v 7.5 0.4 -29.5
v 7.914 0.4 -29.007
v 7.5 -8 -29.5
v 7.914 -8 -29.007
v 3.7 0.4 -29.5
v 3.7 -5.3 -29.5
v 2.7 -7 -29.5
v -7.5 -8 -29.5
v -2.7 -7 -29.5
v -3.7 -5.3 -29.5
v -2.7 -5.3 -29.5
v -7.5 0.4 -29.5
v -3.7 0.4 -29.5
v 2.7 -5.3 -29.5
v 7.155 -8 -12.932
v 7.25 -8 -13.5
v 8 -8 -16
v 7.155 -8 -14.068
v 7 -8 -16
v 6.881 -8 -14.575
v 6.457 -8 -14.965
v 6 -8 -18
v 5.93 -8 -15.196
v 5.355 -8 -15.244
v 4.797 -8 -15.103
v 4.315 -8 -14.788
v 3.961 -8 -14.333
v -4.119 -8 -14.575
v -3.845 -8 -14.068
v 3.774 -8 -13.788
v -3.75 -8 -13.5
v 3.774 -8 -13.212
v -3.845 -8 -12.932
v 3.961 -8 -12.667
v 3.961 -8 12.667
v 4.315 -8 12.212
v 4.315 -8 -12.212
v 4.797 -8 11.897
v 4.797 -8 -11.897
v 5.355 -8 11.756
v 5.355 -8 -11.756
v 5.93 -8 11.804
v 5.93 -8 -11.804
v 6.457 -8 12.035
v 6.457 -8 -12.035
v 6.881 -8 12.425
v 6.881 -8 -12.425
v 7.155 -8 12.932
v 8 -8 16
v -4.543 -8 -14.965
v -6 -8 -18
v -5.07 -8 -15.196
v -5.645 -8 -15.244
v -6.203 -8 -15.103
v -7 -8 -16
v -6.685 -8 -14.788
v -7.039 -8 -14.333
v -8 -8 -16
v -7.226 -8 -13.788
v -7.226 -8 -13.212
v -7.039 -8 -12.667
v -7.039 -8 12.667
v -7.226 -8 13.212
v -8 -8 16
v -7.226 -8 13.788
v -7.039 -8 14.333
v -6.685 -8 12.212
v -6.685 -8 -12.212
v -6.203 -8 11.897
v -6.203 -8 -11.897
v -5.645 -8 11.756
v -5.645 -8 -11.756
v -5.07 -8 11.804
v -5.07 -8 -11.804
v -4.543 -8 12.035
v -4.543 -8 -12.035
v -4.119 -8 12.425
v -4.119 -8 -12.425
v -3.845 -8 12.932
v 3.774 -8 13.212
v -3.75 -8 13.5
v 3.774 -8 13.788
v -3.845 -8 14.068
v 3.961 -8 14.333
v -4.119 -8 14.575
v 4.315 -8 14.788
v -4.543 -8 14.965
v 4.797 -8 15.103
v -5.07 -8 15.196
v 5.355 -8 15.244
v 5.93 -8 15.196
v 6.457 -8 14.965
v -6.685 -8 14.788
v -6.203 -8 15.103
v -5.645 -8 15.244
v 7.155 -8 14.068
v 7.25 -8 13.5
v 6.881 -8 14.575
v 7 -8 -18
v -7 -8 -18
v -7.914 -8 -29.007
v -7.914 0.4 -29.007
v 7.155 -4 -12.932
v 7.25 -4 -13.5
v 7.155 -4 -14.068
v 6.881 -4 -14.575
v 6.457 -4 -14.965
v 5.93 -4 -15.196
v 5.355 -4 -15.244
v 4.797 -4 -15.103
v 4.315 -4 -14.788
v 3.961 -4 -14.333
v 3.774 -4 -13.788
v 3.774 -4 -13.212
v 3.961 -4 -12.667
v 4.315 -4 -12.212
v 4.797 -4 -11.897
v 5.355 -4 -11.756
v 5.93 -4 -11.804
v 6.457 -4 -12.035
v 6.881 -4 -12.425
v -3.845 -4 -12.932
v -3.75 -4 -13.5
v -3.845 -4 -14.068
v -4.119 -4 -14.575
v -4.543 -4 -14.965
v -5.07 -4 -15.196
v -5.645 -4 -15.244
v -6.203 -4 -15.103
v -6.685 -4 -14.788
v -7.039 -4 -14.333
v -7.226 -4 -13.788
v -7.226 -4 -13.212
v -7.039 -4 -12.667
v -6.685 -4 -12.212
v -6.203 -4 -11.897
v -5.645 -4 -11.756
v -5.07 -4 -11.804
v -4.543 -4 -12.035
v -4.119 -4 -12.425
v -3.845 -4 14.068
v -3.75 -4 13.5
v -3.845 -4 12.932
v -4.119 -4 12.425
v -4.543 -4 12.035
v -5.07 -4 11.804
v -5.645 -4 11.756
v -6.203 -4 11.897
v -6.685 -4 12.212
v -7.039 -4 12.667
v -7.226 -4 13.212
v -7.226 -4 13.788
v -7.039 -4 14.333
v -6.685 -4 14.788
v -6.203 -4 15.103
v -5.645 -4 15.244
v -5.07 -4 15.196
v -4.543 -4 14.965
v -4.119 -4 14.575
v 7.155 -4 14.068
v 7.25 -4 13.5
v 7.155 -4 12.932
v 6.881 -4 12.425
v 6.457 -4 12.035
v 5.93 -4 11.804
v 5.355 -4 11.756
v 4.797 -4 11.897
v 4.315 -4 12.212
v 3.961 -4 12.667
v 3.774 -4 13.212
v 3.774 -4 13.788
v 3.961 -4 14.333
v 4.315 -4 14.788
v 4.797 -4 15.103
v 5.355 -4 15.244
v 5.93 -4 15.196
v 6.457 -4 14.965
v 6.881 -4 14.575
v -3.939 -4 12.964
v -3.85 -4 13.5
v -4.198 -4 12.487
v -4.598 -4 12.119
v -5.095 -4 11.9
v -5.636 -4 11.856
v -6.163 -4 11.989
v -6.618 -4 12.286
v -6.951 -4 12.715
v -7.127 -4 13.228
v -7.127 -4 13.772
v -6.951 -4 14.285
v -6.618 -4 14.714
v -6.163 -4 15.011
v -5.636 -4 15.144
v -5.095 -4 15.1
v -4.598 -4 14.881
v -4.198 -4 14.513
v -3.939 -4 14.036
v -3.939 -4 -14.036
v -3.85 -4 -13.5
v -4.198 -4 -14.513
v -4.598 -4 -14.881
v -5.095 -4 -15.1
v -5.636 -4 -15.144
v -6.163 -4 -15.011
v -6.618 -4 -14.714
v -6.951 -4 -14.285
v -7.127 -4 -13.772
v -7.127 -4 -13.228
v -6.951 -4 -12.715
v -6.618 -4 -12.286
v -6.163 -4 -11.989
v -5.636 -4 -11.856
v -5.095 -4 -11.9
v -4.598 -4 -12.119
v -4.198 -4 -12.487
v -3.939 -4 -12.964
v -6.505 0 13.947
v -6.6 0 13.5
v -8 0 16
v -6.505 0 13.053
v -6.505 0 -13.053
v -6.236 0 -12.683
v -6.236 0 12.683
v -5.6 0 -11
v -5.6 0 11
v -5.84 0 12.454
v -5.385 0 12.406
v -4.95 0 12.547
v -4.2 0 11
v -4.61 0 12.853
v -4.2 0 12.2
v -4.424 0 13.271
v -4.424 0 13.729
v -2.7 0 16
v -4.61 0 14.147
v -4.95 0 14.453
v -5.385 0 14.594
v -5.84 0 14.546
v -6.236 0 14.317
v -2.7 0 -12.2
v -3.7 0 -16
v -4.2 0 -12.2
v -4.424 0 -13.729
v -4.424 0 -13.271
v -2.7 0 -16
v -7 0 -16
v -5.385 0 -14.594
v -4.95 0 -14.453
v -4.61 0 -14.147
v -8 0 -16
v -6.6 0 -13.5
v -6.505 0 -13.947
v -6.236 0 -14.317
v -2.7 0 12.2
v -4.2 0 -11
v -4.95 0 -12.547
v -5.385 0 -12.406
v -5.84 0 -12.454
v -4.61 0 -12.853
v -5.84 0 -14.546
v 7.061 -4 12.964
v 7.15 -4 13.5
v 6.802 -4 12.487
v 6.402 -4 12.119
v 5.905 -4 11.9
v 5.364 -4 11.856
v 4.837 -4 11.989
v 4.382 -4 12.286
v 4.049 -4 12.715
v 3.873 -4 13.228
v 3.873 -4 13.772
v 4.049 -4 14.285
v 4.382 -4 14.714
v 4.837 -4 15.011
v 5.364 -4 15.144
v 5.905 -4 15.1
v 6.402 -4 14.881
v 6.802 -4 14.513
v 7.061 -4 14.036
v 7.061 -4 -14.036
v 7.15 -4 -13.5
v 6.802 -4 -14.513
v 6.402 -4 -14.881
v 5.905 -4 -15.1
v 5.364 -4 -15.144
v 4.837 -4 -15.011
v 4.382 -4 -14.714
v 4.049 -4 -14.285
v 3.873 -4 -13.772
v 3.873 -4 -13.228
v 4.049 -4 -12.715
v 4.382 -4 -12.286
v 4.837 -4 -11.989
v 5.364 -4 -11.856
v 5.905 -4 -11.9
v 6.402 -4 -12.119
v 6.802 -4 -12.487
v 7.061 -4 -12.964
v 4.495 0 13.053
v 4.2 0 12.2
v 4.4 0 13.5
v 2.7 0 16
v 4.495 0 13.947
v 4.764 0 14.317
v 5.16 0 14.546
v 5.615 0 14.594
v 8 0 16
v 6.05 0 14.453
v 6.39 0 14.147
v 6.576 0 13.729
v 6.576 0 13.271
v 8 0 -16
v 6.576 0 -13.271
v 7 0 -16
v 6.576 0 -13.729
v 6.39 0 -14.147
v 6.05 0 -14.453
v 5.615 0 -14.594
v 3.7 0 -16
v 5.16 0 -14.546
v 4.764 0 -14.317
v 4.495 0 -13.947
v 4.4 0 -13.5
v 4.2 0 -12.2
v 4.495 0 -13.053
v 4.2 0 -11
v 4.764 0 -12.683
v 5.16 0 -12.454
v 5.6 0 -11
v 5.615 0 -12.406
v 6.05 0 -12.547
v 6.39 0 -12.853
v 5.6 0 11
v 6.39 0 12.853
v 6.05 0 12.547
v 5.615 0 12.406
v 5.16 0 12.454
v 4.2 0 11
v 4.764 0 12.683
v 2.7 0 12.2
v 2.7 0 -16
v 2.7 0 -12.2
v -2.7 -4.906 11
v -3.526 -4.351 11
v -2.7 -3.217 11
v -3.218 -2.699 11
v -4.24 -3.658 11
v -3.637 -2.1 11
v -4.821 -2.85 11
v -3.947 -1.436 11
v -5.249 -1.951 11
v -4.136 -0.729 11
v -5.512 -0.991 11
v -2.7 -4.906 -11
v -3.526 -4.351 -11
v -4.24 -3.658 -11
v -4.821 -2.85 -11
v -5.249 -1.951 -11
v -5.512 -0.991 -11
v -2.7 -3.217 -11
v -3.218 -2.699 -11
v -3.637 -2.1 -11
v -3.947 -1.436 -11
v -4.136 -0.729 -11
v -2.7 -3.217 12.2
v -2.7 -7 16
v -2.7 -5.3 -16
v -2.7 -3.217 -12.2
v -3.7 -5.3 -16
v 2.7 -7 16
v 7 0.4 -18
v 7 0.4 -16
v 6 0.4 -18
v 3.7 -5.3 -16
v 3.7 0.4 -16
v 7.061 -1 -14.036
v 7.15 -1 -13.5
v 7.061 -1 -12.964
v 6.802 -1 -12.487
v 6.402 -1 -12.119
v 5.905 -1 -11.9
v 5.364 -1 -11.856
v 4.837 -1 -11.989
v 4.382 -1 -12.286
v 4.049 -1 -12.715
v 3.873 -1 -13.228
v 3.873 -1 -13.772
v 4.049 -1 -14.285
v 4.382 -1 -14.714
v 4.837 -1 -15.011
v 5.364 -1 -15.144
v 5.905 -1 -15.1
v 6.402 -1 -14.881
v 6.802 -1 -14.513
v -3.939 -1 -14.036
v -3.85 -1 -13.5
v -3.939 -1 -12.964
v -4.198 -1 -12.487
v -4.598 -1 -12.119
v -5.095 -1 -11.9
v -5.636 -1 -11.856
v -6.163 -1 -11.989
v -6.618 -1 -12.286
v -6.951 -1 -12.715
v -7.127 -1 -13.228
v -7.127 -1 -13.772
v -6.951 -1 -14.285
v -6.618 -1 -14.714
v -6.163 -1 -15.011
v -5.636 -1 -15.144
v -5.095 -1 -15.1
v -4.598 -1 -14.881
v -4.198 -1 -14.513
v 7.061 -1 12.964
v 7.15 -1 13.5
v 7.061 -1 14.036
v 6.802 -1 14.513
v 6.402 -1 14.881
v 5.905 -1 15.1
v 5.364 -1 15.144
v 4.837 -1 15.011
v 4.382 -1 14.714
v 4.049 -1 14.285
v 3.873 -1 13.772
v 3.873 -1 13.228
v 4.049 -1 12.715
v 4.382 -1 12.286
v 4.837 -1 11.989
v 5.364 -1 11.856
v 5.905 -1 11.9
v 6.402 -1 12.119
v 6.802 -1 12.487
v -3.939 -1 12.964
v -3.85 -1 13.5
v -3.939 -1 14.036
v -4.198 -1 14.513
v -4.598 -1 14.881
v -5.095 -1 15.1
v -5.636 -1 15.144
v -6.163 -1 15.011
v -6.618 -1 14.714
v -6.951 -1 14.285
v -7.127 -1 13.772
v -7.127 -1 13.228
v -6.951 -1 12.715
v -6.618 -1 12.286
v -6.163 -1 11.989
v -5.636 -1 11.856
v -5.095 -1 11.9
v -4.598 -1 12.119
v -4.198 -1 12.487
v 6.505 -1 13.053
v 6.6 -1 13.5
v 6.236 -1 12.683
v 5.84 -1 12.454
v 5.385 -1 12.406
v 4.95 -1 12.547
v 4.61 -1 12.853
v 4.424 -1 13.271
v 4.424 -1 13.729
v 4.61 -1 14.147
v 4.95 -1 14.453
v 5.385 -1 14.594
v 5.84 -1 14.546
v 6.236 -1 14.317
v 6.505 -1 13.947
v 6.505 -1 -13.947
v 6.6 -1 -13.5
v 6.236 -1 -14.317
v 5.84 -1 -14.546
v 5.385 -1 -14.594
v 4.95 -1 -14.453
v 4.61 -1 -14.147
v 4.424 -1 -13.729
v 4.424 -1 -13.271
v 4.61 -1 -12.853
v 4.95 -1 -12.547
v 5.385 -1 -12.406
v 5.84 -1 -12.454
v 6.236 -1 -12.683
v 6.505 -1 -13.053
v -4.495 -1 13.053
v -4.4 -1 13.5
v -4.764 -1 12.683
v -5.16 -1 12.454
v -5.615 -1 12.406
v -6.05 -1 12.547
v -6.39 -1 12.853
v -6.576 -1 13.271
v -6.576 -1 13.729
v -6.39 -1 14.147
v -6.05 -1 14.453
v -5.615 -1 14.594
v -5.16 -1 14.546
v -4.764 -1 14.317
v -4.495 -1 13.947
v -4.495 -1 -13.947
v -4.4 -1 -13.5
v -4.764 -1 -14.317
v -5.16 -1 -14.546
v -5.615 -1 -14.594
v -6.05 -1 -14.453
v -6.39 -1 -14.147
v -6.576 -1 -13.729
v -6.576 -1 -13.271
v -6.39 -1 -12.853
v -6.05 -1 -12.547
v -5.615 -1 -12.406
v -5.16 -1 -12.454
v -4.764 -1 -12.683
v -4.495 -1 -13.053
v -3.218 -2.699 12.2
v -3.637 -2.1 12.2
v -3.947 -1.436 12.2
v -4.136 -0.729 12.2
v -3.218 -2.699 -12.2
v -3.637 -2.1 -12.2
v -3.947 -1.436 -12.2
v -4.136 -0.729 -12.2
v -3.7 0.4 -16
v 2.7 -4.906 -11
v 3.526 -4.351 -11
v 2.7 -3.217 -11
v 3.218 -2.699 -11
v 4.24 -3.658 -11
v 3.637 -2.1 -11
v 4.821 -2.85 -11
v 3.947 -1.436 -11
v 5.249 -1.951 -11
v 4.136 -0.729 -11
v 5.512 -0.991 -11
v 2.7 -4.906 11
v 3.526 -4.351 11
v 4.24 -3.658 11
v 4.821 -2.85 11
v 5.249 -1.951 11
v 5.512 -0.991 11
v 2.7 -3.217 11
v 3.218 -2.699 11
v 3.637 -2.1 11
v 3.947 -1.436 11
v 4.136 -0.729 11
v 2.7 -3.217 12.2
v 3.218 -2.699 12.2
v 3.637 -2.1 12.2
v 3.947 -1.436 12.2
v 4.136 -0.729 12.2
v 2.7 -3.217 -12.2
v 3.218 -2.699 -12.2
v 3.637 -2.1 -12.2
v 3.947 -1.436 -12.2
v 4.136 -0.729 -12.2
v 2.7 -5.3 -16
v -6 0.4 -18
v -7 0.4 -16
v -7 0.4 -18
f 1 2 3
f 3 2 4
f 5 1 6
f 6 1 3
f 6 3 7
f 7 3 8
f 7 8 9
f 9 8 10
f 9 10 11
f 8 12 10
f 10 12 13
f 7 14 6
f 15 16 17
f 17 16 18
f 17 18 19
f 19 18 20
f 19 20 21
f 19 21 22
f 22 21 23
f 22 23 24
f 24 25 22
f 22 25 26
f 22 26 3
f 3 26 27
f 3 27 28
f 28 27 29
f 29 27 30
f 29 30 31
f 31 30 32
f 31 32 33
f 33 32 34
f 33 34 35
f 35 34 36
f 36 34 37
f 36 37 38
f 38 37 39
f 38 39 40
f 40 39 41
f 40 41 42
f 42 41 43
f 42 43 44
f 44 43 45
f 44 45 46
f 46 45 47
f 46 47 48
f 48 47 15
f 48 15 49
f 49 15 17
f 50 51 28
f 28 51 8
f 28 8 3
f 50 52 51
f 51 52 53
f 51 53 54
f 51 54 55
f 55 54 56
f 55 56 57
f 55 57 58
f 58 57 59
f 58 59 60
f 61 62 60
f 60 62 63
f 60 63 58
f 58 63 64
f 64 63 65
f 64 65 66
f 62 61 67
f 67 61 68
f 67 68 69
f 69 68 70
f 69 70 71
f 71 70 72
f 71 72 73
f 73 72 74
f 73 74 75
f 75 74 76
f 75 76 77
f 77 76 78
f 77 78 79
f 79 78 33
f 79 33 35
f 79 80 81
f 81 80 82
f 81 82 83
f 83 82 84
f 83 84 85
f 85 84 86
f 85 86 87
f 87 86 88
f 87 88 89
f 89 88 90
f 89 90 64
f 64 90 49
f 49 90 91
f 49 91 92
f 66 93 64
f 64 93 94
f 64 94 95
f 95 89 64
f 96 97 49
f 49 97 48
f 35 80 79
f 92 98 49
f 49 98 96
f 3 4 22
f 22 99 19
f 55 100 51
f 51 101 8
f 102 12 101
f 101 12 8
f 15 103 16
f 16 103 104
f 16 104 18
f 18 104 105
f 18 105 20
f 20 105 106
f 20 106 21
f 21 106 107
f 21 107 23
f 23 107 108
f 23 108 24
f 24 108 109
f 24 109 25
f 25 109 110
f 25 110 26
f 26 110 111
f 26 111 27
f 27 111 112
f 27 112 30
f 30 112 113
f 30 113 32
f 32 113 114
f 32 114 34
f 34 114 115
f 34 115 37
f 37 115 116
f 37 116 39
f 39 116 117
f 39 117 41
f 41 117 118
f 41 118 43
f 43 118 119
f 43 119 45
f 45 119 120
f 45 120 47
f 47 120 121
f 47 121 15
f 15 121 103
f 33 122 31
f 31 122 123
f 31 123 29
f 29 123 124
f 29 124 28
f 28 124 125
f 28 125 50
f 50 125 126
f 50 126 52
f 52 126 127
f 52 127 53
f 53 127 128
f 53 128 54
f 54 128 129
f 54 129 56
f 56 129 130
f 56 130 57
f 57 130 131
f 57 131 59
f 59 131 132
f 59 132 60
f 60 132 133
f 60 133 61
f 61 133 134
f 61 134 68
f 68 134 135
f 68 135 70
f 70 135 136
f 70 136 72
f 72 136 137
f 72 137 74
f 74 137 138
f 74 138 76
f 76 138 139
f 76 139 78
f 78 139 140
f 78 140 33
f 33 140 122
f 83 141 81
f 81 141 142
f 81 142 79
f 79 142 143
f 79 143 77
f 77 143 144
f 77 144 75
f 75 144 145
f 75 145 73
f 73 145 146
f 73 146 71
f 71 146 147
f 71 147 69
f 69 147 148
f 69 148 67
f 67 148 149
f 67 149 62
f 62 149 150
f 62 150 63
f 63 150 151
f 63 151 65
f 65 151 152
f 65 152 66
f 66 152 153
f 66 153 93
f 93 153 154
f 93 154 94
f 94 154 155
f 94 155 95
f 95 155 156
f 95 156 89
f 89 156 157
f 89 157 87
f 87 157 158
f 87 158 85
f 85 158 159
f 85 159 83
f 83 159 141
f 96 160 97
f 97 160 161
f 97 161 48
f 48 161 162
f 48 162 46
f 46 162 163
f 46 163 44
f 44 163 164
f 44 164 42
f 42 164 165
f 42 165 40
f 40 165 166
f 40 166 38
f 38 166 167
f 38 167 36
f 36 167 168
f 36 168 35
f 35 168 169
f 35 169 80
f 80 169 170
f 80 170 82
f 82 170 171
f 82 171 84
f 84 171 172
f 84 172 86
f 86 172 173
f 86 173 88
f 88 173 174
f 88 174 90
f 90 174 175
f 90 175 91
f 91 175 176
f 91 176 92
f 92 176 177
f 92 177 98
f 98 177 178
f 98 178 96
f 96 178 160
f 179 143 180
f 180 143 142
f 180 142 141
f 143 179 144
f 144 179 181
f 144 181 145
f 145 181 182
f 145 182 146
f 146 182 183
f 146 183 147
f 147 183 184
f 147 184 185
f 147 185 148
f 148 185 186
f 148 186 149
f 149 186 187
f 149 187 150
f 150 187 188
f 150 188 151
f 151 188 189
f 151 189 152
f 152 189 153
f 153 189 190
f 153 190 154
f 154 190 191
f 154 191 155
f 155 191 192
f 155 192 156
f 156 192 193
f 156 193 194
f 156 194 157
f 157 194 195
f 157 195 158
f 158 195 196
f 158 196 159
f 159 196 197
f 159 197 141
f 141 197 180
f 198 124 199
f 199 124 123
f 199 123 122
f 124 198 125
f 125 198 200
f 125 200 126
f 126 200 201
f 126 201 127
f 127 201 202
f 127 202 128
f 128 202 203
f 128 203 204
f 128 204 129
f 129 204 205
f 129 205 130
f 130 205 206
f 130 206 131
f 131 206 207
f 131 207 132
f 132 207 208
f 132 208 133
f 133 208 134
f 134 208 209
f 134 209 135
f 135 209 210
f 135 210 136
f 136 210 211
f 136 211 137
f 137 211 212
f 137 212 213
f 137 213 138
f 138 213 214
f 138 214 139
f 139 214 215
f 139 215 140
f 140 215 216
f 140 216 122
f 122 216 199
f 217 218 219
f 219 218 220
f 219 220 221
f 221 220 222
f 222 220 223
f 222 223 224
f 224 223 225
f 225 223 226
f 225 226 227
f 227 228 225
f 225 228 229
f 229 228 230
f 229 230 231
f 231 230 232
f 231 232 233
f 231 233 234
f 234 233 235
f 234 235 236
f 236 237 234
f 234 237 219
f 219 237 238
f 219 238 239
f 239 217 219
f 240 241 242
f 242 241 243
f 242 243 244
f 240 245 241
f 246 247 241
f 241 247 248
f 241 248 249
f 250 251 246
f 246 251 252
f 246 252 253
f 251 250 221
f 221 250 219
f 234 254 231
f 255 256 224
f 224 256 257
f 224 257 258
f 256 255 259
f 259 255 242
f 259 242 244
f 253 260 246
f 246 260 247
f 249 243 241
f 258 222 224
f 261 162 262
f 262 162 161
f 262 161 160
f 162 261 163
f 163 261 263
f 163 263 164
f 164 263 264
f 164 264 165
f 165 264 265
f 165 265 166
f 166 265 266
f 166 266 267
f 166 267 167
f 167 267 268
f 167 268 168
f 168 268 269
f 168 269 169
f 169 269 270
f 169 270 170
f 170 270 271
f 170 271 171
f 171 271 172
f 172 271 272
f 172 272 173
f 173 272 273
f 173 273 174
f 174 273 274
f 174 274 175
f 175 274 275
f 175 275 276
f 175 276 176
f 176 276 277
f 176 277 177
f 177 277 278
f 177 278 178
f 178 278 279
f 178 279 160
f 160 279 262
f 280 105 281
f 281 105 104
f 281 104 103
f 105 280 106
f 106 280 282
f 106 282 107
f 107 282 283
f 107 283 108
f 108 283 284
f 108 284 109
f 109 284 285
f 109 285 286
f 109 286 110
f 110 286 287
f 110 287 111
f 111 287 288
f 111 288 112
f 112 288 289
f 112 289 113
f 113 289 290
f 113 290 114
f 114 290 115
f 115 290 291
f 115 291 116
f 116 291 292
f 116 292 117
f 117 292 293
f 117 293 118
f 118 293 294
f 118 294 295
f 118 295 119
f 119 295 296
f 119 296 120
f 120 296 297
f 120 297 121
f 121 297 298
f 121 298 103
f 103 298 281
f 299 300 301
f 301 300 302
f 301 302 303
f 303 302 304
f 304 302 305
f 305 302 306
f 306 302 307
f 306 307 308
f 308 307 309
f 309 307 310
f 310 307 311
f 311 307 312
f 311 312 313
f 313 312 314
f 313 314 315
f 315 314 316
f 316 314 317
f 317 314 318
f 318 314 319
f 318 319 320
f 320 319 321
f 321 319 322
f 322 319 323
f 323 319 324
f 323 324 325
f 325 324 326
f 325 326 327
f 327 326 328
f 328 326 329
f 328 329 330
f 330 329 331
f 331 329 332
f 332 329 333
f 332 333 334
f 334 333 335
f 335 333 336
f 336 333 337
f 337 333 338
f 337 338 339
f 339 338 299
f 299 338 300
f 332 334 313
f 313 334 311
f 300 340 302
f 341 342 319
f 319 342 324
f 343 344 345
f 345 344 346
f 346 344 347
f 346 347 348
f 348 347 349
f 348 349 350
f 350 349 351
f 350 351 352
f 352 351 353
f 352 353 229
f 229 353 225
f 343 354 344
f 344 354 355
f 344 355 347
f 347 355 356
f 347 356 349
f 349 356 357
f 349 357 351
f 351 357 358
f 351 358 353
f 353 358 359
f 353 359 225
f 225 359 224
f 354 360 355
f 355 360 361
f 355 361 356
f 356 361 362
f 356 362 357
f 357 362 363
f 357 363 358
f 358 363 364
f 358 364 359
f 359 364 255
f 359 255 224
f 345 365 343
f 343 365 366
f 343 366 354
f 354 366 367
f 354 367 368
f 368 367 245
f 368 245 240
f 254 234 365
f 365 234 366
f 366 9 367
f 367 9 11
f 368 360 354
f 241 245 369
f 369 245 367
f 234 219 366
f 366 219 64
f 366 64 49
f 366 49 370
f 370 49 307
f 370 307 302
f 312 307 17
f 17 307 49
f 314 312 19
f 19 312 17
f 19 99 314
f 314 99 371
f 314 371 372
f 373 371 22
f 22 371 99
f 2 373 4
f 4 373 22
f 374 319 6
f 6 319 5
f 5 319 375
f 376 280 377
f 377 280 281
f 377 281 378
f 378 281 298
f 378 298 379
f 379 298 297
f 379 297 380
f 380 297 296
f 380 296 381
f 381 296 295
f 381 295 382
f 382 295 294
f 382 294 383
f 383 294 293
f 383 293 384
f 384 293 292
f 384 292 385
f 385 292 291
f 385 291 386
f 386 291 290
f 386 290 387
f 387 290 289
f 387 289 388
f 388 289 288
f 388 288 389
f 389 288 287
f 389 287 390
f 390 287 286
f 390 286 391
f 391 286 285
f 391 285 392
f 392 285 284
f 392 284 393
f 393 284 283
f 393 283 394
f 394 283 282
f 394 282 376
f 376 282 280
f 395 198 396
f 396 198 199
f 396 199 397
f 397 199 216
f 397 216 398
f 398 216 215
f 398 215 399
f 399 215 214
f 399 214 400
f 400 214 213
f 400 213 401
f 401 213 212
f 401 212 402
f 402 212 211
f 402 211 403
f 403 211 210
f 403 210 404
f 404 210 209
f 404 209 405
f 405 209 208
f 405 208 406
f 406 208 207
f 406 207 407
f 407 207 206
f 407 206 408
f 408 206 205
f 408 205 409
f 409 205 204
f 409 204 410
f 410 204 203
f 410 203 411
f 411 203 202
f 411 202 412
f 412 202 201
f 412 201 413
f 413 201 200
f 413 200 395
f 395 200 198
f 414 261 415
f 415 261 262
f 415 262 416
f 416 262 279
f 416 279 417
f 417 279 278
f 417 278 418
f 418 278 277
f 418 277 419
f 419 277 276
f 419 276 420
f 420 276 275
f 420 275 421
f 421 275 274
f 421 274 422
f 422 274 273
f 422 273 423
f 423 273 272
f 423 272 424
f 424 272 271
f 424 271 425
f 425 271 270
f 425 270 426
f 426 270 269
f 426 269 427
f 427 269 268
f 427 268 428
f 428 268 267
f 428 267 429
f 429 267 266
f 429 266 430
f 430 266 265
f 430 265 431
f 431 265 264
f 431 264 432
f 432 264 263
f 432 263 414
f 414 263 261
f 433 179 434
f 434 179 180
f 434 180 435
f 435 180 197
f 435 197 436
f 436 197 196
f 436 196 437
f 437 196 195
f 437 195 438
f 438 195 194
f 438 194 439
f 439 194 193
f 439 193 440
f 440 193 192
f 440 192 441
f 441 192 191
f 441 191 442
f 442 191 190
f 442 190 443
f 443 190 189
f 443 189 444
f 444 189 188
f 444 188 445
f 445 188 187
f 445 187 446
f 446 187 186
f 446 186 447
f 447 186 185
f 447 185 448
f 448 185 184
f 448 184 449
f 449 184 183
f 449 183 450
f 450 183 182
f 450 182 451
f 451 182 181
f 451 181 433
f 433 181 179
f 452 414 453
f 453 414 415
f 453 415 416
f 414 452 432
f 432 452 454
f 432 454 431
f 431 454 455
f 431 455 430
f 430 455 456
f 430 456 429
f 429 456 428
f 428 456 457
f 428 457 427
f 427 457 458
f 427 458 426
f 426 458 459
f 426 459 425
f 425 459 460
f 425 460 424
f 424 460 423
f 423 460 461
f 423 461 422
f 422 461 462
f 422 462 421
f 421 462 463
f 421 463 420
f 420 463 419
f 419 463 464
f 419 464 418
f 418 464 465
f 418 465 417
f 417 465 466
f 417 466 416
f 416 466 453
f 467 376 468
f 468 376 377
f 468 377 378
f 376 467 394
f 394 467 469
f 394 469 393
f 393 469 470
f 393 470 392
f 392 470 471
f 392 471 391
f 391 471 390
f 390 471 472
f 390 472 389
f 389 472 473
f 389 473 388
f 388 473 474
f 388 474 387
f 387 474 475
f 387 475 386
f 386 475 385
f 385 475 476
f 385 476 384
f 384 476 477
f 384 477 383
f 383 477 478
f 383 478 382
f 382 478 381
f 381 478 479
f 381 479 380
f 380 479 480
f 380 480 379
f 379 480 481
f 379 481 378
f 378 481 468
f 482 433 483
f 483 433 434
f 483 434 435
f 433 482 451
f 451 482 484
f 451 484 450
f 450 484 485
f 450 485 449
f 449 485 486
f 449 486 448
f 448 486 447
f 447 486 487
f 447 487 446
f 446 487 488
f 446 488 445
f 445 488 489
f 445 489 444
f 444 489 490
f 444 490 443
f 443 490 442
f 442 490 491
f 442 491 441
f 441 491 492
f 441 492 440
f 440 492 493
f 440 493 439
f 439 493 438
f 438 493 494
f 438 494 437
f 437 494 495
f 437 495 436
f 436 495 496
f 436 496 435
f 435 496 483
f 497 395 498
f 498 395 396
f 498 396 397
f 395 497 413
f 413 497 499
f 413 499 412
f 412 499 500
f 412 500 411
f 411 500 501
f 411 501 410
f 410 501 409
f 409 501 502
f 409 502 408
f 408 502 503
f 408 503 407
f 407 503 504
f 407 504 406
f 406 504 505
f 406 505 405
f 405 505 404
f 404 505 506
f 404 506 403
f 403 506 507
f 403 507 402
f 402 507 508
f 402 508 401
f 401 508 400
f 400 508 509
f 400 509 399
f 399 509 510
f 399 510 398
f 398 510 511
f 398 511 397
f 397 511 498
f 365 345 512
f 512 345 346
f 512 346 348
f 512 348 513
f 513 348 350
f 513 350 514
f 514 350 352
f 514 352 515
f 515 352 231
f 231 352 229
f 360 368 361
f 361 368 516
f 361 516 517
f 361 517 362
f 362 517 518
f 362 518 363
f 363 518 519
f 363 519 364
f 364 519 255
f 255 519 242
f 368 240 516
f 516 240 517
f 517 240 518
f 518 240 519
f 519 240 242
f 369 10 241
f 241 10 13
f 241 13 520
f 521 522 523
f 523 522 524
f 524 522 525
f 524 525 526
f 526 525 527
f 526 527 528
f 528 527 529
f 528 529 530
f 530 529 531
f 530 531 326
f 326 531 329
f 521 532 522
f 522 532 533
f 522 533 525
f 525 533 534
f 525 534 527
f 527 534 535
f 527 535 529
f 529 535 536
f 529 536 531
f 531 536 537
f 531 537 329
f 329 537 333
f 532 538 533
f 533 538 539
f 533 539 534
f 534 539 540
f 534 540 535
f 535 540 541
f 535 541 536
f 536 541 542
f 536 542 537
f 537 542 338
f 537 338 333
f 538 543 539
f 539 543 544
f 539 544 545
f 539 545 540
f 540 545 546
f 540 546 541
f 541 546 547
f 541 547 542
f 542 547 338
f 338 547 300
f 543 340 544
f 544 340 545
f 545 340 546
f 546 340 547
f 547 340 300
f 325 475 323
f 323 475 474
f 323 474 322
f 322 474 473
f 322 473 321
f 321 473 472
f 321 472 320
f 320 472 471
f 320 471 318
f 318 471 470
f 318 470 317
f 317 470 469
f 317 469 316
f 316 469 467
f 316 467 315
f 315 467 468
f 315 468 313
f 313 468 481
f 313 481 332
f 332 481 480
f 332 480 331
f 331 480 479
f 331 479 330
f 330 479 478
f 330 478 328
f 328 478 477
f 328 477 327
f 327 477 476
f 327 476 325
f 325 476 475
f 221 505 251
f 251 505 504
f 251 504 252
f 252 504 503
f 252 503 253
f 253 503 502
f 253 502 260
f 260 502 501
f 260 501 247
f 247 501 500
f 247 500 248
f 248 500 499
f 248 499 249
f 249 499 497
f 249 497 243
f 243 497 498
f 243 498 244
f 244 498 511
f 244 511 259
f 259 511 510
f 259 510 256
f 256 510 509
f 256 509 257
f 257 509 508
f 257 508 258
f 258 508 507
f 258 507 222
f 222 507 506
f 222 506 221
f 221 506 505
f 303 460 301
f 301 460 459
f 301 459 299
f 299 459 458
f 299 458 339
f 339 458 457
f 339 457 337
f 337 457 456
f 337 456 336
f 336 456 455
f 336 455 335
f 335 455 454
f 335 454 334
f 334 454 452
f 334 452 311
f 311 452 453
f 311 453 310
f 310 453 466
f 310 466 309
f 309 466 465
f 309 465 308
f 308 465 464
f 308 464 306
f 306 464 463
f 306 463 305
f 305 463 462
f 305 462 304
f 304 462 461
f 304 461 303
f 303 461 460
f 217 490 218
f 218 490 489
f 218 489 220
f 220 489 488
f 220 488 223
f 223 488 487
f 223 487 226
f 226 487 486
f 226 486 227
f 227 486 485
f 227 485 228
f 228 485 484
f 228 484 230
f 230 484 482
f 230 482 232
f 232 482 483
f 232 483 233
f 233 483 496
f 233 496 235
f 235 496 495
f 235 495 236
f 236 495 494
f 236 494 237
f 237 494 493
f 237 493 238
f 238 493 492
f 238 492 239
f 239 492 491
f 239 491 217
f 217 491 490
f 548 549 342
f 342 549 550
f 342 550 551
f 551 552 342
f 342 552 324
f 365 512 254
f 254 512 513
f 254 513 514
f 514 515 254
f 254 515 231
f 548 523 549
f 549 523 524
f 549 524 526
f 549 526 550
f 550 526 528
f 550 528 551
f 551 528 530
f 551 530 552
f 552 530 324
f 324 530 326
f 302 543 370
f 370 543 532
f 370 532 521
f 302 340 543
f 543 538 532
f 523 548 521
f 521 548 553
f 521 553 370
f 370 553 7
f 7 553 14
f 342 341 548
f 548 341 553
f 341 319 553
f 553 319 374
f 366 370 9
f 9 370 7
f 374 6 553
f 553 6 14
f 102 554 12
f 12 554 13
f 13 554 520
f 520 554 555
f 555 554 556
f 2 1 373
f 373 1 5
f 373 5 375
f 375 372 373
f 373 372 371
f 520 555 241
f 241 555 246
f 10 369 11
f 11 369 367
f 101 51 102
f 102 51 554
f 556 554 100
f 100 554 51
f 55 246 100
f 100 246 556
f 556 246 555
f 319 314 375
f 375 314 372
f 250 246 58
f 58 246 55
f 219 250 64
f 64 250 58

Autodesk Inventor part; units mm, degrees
ref_plane "YZ Plane" through (0, 0, 0) normal (1, 0, 0) x (0, 1, 0)
ref_plane "XZ Plane" through (0, 0, 0) normal (0, 1, 0) x (-1, 0, 0)
ref_plane "XY Plane" through (0, 0, 0) normal (0, 0, 1) x (1, 0, 0)
sketch "DrumSketch" plane through (0, 0, 0) normal (0, 0, 1) x (1, 0, 0)
  line L0 (0, 8.12) -> (0, -9.52) projected
  line L1 (-7.84, 0) -> (7.84, 0) projected
  circle A0 centre (0, 0) radius 4.2
  line L2 (-2.7, -3) -> (2.7, -3)
  line L3 (2.7, 0) -> (2.7, -7)
  line L4 (2.7, -7) -> (-2.7, -7)
  line L5 (-2.7, -7) -> (-2.7, 0)
  circle A1 centre (0, 0) radius 5.6
  dimension "d0" = 8.4
  dimension "d1" = 5.4
  dimension "d2" = 7
  dimension "d3" = 4
  dimension "d6" = 11.2
sketch "BodySketch" plane through (0, 0, 0) normal (0, 1, 0) x (-1, 0, 0)
  line L0 (8, 16) -> (-8, 16)
  line L1 (-8, 16) -> (-8, -16)
  line L2 (-8, -16) -> (8, -16)
  line L3 (8, -16) -> (8, 16)
  line L4 (0, -38.6) -> (0, 25.1) projected
  line L5 (-11.2, 0) -> (11.2, 0) projected
  circle A0 centre (5.5, 13.5) radius 1.1
  circle A1 centre (5.5, 13.5) radius 1.65
  circle A2 centre (5.5, -13.5) radius 1.1
  circle A3 centre (5.5, -13.5) radius 1.65
  circle A4 centre (-5.5, 13.5) radius 1.1
  circle A5 centre (-5.5, 13.5) radius 1.65
  circle A6 centre (-5.5, -13.5) radius 1.65
  circle A7 centre (-5.5, -13.5) radius 1.1
  line L6 (7, -16) -> (7, -18)
  line L7 (7, -18) -> (6, -18)
  line L8 (6, -18) -> (8, -29.5)
  line L9 (8, -29.5) -> (-8, -29.5)
  line L10 (-8, -29.5) -> (-6, -18)
  line L11 (-6, -18) -> (-7, -18)
  line L12 (-7, -18) -> (-7, -16)
  line L13 (3.7, -29.5) -> (3.7, -16)
  line L14 (-3.7, -29.5) -> (-3.7, -16)
  line L15 (2.4888, -22.75) -> (1.2404, -22.75)
  circle A8 centre (5.5, 13.5) radius 1.75
  circle A9 centre (5.5, -13.5) radius 1.75
  circle A10 centre (-5.5, 13.5) radius 1.75
  circle A11 centre (-5.5, -13.5) radius 1.75
  point P0 (0, 0)
  point P1 (-8, 0)
  point P2 (0, 16)
  point P3 (8, 0)
  point P4 (0, -16)
  dimension "d4" = 16
  dimension "d5" = 32
  dimension "d15" = 3.3
  dimension "d16" = 2.2
  dimension "d17" = 2.5
  dimension "d18" = 2.5
  dimension "d23" = 16
  dimension "d24" = 12
  dimension "d25" = 14
  dimension "d26" = 2
  dimension "d28" = 11.5
  dimension "d29" = 7.4
  dimension "d37" = 6.75
  dimension "d38" = 6.75
  dimension "d39" = 22.75
  dimension "d40" = 3.5
extrude "MainBody" add sketch "BodySketch" against normal blind 8 contours L3 L5 L4 L0 | L4 L5 L1 L0 | L3 L2 L4 L5 | L4 L2 L1 L5 | A0 | A1 | A2 | A3 | A4 | A5 | A6 | A7 | A8 | A9 | A10 | A11
extrude "TrapConnector" add sketch "BodySketch" along normal blind 8.4 from surface at -8 contours L4 L9 L14 L2 | L2 L13 L9 L4 | L6 L7 L8 L9 L13 L2 | L14 L9 L10 L11 L12 L2
extrude "SliderChannel" cut sketch "DrumSketch" along normal through all both and the other way through all contours L1 L3 L2 L0 | L0 L2 L5 L1 | A1 L0 A0 L3 | L3 L4 L0 A1 | A1 L0 L4 L5 | L5 A0 L0 A1 | L2 L3 A0 L0 | L0 A0 L5 L2
extrude "TrapChannel" cut sketch "BodySketch" against normal blind 5.7 from surface at 0.4 contours L4 L9 L14 L2 | L2 L13 L9 L4
extrude "DrumChannel" cut sketch "DrumSketch" along normal mid plane 22 contours A1 L1 A0 L0 | L0 A0 L1 A1 | A0 L1 L0 | L0 L1 A0 | A1 L3 A0 L1 | L1 A0 L5 A1 | L1 L3 L2 L0 | L0 L2 L5 L1 | A0 L3 L1 | L1 L5 A0 | A1 L0 A0 L3 | L5 A0 L0 A1 | L2 L3 A0 L0 | L0 A0 L5 L2
extrude "DrumBearing" cut sketch "DrumSketch" along normal mid plane 24.4 contours A0 L1 L0 | L0 L1 A0 | L1 L3 L2 L0 | L0 L2 L5 L1 | A0 L3 L1 | L1 L5 A0 | L2 L3 A0 L0 | L0 A0 L5 L2
extrude "FixHoleTop" cut sketch "BodySketch" against normal through all contours A0 | A2 | A4 | A7
extrude "FixHoleMid" cut sketch "BodySketch" along normal blind 7 from surface at -8 contours A0 | A1 | A2 | A3 | A4 | A5 | A6 | A7
extrude "FixHoleBottom" cut sketch "BodySketch" along normal blind 4 from surface at -8 contours A0 | A1 | A2 | A3 | A4 | A5 | A6 | A7 | A8 | A9 | A10 | A11
chamfer "TrapEdgeChamfer" distance 0.5 angle 45 2 edges at (-8, -3.8, -29.5) (8, -3.8, -29.5)
equation "\"d23\" = LeverConnectTrapWidthBottom"
equation "\"d24\" = LeverConnectTrapWidthTop"
equation "\"d28\" = LeverConnectTrapDepth"
equation "\"d37\" = d38"
equation "\"d30\" = RailHeight"
equation "\"RHtmp\" = 8.4"
equation "\"RTtmp\" = 2"
equation "\"LeverConnectTrapWidthBottom\" = 16"
equation "\"LeverConnectTrapWidthTop\" = 12"
equation "\"LeverConnectTrapDepth\" = 11.5"
equation "\"RailHeight\" = 8.4"
properties part number "SwitchLeverUnit_LowerCase"
